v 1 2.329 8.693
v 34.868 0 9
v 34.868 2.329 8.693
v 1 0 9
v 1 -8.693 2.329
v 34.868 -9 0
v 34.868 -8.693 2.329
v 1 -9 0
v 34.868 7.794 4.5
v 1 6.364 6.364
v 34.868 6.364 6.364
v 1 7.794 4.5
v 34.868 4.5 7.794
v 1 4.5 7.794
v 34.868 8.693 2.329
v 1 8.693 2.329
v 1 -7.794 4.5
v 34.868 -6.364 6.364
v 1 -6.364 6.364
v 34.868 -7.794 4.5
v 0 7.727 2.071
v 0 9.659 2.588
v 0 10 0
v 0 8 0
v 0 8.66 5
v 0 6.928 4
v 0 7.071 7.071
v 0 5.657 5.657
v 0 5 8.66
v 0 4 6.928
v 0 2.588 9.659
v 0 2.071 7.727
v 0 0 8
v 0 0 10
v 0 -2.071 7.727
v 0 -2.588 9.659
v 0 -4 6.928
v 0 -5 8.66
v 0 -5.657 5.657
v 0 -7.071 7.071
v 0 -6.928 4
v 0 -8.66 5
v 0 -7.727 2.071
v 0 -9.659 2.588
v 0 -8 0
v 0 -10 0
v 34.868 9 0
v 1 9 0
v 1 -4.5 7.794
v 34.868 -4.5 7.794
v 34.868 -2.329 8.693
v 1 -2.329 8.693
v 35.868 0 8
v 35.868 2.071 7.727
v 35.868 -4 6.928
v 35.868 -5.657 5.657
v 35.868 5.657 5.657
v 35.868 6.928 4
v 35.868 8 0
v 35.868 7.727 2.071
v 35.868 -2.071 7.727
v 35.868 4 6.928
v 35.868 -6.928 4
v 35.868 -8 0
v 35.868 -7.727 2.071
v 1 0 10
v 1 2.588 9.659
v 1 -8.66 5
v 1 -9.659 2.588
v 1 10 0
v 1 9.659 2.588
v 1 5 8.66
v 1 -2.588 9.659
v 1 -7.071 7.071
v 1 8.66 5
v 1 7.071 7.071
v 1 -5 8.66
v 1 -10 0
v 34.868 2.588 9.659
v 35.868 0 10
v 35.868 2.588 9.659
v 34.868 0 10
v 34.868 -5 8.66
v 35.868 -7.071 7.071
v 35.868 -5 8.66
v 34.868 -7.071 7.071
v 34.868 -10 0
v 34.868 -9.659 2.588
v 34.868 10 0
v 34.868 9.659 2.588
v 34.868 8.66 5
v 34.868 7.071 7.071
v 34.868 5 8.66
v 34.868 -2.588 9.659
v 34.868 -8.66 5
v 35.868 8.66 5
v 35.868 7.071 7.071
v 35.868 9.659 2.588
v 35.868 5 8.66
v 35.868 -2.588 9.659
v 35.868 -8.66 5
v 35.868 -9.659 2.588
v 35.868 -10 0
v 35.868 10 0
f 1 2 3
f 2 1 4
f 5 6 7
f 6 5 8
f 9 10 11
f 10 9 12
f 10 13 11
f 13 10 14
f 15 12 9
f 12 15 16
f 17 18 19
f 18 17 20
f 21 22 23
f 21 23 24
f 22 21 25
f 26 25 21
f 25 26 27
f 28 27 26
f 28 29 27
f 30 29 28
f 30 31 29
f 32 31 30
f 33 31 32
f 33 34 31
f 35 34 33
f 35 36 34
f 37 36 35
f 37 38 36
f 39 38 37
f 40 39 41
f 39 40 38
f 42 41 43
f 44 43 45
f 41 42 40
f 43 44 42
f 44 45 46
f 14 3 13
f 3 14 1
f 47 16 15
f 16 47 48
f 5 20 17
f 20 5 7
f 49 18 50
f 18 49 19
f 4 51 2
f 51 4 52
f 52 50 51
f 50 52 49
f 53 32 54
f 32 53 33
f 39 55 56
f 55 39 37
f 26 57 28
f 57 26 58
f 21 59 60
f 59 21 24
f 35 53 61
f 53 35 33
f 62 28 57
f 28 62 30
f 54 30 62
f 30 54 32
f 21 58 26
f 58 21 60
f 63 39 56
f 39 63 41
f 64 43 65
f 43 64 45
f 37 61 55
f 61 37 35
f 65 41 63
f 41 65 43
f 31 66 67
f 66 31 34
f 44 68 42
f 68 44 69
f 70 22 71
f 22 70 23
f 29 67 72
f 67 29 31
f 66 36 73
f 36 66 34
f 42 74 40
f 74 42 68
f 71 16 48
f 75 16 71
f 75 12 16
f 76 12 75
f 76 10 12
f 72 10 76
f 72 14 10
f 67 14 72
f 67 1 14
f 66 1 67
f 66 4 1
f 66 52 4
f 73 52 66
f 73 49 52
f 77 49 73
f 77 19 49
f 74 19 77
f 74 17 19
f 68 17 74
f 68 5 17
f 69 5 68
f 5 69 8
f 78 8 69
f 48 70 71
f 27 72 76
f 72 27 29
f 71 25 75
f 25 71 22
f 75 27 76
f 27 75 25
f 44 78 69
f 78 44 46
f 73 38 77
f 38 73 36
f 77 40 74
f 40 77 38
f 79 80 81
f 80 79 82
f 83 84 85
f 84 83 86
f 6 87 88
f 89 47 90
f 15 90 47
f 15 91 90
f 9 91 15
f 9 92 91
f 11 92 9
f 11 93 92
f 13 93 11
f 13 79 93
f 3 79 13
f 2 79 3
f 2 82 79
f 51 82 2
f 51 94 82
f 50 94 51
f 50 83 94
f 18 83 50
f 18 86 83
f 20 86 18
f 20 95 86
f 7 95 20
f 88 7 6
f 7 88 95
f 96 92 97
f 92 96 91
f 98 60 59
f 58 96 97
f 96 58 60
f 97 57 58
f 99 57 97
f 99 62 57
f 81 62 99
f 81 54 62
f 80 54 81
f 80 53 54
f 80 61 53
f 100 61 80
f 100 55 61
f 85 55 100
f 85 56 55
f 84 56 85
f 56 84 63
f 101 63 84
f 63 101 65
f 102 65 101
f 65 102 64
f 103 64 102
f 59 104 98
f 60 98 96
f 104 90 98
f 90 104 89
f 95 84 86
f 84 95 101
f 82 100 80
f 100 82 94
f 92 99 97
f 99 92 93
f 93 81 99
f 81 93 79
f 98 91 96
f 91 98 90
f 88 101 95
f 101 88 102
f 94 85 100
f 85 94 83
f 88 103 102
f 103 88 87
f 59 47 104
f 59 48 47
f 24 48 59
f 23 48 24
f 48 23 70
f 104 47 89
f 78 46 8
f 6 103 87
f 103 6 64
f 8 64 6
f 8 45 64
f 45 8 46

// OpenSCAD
// file: ../build_environments.scad
// build_environments.scad: modules to build level sections
//

module pool(diameter=10.0, wall_height=2.0, step_width=3.0, connections=[])
{
    difference() {
        union() {
        difference() {
            cylinder(h=0.5,r1=diameter+step_width,r2=diameter+step_width,$fn=48);
            translate([0,0,-0.1])
                cylinder(h=0.7,r1=diameter,r2=diameter,$fn=48);
        }
        difference() {
            cylinder(h=wall_height,r1=diameter+step_width+1.0,r2=diameter+step_width+1.0,$fn=48);
            translate([0,0,-0.1])
                cylinder(h=wall_height+0.2,r1=diameter+step_width,r2=diameter+step_width,$fn=48);
        }
        }
    
        for (c = connections)
        {
            rotate([0,90,0]) {
                angle = atan2(c[1],c[0]);
                rotate([-angle,0,0]) {
                    cylinder(h=diameter+5.0,r1=c[2],r2=c[2],$fn=48);
                }
            }
        }
    }
}

module straight(length=10.0, width=2.0, dy1=0.0, dy2=0.0, dz=0.0)
{
    dims = [0, 0, 0, 0, 0, (dz/length)];
    matrix = [
        [ 1, dims[0], dims[1], 0 ],
        [ dims[2], 1, dims[4], 0 ],
        [ dims[5], dims[3], 1, 0 ],
        [ 0, 0, 0, 1 ]
    ];
    multmatrix(matrix)
    difference() {
        translate([dy1,0,0])
        union() {
            rotate([0,90,0]) {
                difference() {
                    cylinder(h=(length-dy1-dy2),r1=width+1.0,r2=width+1.0,$fn=24);
                    translate([0,0,-0.1])
                        cylinder(h=(length-dy1-dy2+0.2),r1=width,r2=width,$fn=24);
                }
                difference() {
                    cylinder(h=1.0,r1=width+2.0,r2=width+2.0,$fn=24);
                    translate([0,0,-0.1])
                        cylinder(h=1.2,r1=width,r2=width,$fn=24);
                }
                translate([0,0,(length-dy1-dy2)-1.0]) {
                    difference() {
                        cylinder(h=1.0,r1=width+2.0,r2=width+2.0,$fn=24);
                        translate([0,0,-0.1])
                            cylinder(h=1.2,r1=width,r2=width,$fn=24);
                    }
                }
            }
        }
        translate([0,0,-(2*width+4.0)/2])
            cube([3*length,3*length,2*width+4.0],center=true);
    }
}

module curve(p0=[0,0], center=[0,0], dir=1, angle=0.0, width=2.0)
{
    radius = sqrt((p0[0]-center[0])*(p0[0]-center[0]) + (p0[1]-center[1])*(p0[1]-center[1]));
    if (dir == 0) {
        difference() {
            rotate([0,0,-90])
            difference() {
                rotate_extrude(angle = angle, convexity = 10, $fn=32)
                    translate([radius, 0, 0])
                        circle(r = width+1.0,$fn=24);
                rotate([0,0,-1.0])
                    rotate_extrude(angle = angle+2.0, convexity = 10, $fn=32)
                        translate([radius, 0, 0])
                            circle(r = width,$fn=24);
            }
            translate([0,0,-(2*width+4.0)/2])
                cube([5*radius,5*radius,2*width+4.0],center=true);
        }
    }
    else {
        difference() {
            rotate([0,0,90])
            difference() {
                rotate_extrude(angle = -angle, convexity = 10, $fn=32)
                    translate([radius, 0, 0])
                        circle(r = width+1.0,$fn=24);
                rotate([0,0,1.0])
                    rotate_extrude(angle = -angle-2.0, convexity = 10, $fn=32)
                        translate([radius, 0, 0])
                            circle(r = width,$fn=24);
            }
            translate([0,0,-(2*width+4.0)/2])
                cube([5*radius,5*radius,2*width+4.0],center=true);
        }
    }

}

// test pool
//pool(diameter=12.0000, wall_height=3.0000, step_width=3.0000, connections=[[0.0000,-26.0000,2.0000], [23.6074,0.0000,2.0000]]);

// test straight, slope
//straight(length=26.0000, width=2.0000, dy1=11.8322, dy2=6.7082, dz=0.0000);
//straight(length=29.1549, width=12.0000, dy1=0.0000, dy2=0.0000, dz=-15.0000);

// test curve
//curve(p0=[23.6074, 0.0000], center=[23.6074, 5.0000], dir=0, angle=60.1011, width=2.0000);
//curve(p0=[33.6426, 12.4219], center=[37.9771, 9.9295], dir=1, angle=120.4627, width=2.0000);
// main file
use <../build_environments.scad>;
straight(length=35.8685, width=8.0000, dy1=0.0000, dy2=0.0000, dz=0.0000);
